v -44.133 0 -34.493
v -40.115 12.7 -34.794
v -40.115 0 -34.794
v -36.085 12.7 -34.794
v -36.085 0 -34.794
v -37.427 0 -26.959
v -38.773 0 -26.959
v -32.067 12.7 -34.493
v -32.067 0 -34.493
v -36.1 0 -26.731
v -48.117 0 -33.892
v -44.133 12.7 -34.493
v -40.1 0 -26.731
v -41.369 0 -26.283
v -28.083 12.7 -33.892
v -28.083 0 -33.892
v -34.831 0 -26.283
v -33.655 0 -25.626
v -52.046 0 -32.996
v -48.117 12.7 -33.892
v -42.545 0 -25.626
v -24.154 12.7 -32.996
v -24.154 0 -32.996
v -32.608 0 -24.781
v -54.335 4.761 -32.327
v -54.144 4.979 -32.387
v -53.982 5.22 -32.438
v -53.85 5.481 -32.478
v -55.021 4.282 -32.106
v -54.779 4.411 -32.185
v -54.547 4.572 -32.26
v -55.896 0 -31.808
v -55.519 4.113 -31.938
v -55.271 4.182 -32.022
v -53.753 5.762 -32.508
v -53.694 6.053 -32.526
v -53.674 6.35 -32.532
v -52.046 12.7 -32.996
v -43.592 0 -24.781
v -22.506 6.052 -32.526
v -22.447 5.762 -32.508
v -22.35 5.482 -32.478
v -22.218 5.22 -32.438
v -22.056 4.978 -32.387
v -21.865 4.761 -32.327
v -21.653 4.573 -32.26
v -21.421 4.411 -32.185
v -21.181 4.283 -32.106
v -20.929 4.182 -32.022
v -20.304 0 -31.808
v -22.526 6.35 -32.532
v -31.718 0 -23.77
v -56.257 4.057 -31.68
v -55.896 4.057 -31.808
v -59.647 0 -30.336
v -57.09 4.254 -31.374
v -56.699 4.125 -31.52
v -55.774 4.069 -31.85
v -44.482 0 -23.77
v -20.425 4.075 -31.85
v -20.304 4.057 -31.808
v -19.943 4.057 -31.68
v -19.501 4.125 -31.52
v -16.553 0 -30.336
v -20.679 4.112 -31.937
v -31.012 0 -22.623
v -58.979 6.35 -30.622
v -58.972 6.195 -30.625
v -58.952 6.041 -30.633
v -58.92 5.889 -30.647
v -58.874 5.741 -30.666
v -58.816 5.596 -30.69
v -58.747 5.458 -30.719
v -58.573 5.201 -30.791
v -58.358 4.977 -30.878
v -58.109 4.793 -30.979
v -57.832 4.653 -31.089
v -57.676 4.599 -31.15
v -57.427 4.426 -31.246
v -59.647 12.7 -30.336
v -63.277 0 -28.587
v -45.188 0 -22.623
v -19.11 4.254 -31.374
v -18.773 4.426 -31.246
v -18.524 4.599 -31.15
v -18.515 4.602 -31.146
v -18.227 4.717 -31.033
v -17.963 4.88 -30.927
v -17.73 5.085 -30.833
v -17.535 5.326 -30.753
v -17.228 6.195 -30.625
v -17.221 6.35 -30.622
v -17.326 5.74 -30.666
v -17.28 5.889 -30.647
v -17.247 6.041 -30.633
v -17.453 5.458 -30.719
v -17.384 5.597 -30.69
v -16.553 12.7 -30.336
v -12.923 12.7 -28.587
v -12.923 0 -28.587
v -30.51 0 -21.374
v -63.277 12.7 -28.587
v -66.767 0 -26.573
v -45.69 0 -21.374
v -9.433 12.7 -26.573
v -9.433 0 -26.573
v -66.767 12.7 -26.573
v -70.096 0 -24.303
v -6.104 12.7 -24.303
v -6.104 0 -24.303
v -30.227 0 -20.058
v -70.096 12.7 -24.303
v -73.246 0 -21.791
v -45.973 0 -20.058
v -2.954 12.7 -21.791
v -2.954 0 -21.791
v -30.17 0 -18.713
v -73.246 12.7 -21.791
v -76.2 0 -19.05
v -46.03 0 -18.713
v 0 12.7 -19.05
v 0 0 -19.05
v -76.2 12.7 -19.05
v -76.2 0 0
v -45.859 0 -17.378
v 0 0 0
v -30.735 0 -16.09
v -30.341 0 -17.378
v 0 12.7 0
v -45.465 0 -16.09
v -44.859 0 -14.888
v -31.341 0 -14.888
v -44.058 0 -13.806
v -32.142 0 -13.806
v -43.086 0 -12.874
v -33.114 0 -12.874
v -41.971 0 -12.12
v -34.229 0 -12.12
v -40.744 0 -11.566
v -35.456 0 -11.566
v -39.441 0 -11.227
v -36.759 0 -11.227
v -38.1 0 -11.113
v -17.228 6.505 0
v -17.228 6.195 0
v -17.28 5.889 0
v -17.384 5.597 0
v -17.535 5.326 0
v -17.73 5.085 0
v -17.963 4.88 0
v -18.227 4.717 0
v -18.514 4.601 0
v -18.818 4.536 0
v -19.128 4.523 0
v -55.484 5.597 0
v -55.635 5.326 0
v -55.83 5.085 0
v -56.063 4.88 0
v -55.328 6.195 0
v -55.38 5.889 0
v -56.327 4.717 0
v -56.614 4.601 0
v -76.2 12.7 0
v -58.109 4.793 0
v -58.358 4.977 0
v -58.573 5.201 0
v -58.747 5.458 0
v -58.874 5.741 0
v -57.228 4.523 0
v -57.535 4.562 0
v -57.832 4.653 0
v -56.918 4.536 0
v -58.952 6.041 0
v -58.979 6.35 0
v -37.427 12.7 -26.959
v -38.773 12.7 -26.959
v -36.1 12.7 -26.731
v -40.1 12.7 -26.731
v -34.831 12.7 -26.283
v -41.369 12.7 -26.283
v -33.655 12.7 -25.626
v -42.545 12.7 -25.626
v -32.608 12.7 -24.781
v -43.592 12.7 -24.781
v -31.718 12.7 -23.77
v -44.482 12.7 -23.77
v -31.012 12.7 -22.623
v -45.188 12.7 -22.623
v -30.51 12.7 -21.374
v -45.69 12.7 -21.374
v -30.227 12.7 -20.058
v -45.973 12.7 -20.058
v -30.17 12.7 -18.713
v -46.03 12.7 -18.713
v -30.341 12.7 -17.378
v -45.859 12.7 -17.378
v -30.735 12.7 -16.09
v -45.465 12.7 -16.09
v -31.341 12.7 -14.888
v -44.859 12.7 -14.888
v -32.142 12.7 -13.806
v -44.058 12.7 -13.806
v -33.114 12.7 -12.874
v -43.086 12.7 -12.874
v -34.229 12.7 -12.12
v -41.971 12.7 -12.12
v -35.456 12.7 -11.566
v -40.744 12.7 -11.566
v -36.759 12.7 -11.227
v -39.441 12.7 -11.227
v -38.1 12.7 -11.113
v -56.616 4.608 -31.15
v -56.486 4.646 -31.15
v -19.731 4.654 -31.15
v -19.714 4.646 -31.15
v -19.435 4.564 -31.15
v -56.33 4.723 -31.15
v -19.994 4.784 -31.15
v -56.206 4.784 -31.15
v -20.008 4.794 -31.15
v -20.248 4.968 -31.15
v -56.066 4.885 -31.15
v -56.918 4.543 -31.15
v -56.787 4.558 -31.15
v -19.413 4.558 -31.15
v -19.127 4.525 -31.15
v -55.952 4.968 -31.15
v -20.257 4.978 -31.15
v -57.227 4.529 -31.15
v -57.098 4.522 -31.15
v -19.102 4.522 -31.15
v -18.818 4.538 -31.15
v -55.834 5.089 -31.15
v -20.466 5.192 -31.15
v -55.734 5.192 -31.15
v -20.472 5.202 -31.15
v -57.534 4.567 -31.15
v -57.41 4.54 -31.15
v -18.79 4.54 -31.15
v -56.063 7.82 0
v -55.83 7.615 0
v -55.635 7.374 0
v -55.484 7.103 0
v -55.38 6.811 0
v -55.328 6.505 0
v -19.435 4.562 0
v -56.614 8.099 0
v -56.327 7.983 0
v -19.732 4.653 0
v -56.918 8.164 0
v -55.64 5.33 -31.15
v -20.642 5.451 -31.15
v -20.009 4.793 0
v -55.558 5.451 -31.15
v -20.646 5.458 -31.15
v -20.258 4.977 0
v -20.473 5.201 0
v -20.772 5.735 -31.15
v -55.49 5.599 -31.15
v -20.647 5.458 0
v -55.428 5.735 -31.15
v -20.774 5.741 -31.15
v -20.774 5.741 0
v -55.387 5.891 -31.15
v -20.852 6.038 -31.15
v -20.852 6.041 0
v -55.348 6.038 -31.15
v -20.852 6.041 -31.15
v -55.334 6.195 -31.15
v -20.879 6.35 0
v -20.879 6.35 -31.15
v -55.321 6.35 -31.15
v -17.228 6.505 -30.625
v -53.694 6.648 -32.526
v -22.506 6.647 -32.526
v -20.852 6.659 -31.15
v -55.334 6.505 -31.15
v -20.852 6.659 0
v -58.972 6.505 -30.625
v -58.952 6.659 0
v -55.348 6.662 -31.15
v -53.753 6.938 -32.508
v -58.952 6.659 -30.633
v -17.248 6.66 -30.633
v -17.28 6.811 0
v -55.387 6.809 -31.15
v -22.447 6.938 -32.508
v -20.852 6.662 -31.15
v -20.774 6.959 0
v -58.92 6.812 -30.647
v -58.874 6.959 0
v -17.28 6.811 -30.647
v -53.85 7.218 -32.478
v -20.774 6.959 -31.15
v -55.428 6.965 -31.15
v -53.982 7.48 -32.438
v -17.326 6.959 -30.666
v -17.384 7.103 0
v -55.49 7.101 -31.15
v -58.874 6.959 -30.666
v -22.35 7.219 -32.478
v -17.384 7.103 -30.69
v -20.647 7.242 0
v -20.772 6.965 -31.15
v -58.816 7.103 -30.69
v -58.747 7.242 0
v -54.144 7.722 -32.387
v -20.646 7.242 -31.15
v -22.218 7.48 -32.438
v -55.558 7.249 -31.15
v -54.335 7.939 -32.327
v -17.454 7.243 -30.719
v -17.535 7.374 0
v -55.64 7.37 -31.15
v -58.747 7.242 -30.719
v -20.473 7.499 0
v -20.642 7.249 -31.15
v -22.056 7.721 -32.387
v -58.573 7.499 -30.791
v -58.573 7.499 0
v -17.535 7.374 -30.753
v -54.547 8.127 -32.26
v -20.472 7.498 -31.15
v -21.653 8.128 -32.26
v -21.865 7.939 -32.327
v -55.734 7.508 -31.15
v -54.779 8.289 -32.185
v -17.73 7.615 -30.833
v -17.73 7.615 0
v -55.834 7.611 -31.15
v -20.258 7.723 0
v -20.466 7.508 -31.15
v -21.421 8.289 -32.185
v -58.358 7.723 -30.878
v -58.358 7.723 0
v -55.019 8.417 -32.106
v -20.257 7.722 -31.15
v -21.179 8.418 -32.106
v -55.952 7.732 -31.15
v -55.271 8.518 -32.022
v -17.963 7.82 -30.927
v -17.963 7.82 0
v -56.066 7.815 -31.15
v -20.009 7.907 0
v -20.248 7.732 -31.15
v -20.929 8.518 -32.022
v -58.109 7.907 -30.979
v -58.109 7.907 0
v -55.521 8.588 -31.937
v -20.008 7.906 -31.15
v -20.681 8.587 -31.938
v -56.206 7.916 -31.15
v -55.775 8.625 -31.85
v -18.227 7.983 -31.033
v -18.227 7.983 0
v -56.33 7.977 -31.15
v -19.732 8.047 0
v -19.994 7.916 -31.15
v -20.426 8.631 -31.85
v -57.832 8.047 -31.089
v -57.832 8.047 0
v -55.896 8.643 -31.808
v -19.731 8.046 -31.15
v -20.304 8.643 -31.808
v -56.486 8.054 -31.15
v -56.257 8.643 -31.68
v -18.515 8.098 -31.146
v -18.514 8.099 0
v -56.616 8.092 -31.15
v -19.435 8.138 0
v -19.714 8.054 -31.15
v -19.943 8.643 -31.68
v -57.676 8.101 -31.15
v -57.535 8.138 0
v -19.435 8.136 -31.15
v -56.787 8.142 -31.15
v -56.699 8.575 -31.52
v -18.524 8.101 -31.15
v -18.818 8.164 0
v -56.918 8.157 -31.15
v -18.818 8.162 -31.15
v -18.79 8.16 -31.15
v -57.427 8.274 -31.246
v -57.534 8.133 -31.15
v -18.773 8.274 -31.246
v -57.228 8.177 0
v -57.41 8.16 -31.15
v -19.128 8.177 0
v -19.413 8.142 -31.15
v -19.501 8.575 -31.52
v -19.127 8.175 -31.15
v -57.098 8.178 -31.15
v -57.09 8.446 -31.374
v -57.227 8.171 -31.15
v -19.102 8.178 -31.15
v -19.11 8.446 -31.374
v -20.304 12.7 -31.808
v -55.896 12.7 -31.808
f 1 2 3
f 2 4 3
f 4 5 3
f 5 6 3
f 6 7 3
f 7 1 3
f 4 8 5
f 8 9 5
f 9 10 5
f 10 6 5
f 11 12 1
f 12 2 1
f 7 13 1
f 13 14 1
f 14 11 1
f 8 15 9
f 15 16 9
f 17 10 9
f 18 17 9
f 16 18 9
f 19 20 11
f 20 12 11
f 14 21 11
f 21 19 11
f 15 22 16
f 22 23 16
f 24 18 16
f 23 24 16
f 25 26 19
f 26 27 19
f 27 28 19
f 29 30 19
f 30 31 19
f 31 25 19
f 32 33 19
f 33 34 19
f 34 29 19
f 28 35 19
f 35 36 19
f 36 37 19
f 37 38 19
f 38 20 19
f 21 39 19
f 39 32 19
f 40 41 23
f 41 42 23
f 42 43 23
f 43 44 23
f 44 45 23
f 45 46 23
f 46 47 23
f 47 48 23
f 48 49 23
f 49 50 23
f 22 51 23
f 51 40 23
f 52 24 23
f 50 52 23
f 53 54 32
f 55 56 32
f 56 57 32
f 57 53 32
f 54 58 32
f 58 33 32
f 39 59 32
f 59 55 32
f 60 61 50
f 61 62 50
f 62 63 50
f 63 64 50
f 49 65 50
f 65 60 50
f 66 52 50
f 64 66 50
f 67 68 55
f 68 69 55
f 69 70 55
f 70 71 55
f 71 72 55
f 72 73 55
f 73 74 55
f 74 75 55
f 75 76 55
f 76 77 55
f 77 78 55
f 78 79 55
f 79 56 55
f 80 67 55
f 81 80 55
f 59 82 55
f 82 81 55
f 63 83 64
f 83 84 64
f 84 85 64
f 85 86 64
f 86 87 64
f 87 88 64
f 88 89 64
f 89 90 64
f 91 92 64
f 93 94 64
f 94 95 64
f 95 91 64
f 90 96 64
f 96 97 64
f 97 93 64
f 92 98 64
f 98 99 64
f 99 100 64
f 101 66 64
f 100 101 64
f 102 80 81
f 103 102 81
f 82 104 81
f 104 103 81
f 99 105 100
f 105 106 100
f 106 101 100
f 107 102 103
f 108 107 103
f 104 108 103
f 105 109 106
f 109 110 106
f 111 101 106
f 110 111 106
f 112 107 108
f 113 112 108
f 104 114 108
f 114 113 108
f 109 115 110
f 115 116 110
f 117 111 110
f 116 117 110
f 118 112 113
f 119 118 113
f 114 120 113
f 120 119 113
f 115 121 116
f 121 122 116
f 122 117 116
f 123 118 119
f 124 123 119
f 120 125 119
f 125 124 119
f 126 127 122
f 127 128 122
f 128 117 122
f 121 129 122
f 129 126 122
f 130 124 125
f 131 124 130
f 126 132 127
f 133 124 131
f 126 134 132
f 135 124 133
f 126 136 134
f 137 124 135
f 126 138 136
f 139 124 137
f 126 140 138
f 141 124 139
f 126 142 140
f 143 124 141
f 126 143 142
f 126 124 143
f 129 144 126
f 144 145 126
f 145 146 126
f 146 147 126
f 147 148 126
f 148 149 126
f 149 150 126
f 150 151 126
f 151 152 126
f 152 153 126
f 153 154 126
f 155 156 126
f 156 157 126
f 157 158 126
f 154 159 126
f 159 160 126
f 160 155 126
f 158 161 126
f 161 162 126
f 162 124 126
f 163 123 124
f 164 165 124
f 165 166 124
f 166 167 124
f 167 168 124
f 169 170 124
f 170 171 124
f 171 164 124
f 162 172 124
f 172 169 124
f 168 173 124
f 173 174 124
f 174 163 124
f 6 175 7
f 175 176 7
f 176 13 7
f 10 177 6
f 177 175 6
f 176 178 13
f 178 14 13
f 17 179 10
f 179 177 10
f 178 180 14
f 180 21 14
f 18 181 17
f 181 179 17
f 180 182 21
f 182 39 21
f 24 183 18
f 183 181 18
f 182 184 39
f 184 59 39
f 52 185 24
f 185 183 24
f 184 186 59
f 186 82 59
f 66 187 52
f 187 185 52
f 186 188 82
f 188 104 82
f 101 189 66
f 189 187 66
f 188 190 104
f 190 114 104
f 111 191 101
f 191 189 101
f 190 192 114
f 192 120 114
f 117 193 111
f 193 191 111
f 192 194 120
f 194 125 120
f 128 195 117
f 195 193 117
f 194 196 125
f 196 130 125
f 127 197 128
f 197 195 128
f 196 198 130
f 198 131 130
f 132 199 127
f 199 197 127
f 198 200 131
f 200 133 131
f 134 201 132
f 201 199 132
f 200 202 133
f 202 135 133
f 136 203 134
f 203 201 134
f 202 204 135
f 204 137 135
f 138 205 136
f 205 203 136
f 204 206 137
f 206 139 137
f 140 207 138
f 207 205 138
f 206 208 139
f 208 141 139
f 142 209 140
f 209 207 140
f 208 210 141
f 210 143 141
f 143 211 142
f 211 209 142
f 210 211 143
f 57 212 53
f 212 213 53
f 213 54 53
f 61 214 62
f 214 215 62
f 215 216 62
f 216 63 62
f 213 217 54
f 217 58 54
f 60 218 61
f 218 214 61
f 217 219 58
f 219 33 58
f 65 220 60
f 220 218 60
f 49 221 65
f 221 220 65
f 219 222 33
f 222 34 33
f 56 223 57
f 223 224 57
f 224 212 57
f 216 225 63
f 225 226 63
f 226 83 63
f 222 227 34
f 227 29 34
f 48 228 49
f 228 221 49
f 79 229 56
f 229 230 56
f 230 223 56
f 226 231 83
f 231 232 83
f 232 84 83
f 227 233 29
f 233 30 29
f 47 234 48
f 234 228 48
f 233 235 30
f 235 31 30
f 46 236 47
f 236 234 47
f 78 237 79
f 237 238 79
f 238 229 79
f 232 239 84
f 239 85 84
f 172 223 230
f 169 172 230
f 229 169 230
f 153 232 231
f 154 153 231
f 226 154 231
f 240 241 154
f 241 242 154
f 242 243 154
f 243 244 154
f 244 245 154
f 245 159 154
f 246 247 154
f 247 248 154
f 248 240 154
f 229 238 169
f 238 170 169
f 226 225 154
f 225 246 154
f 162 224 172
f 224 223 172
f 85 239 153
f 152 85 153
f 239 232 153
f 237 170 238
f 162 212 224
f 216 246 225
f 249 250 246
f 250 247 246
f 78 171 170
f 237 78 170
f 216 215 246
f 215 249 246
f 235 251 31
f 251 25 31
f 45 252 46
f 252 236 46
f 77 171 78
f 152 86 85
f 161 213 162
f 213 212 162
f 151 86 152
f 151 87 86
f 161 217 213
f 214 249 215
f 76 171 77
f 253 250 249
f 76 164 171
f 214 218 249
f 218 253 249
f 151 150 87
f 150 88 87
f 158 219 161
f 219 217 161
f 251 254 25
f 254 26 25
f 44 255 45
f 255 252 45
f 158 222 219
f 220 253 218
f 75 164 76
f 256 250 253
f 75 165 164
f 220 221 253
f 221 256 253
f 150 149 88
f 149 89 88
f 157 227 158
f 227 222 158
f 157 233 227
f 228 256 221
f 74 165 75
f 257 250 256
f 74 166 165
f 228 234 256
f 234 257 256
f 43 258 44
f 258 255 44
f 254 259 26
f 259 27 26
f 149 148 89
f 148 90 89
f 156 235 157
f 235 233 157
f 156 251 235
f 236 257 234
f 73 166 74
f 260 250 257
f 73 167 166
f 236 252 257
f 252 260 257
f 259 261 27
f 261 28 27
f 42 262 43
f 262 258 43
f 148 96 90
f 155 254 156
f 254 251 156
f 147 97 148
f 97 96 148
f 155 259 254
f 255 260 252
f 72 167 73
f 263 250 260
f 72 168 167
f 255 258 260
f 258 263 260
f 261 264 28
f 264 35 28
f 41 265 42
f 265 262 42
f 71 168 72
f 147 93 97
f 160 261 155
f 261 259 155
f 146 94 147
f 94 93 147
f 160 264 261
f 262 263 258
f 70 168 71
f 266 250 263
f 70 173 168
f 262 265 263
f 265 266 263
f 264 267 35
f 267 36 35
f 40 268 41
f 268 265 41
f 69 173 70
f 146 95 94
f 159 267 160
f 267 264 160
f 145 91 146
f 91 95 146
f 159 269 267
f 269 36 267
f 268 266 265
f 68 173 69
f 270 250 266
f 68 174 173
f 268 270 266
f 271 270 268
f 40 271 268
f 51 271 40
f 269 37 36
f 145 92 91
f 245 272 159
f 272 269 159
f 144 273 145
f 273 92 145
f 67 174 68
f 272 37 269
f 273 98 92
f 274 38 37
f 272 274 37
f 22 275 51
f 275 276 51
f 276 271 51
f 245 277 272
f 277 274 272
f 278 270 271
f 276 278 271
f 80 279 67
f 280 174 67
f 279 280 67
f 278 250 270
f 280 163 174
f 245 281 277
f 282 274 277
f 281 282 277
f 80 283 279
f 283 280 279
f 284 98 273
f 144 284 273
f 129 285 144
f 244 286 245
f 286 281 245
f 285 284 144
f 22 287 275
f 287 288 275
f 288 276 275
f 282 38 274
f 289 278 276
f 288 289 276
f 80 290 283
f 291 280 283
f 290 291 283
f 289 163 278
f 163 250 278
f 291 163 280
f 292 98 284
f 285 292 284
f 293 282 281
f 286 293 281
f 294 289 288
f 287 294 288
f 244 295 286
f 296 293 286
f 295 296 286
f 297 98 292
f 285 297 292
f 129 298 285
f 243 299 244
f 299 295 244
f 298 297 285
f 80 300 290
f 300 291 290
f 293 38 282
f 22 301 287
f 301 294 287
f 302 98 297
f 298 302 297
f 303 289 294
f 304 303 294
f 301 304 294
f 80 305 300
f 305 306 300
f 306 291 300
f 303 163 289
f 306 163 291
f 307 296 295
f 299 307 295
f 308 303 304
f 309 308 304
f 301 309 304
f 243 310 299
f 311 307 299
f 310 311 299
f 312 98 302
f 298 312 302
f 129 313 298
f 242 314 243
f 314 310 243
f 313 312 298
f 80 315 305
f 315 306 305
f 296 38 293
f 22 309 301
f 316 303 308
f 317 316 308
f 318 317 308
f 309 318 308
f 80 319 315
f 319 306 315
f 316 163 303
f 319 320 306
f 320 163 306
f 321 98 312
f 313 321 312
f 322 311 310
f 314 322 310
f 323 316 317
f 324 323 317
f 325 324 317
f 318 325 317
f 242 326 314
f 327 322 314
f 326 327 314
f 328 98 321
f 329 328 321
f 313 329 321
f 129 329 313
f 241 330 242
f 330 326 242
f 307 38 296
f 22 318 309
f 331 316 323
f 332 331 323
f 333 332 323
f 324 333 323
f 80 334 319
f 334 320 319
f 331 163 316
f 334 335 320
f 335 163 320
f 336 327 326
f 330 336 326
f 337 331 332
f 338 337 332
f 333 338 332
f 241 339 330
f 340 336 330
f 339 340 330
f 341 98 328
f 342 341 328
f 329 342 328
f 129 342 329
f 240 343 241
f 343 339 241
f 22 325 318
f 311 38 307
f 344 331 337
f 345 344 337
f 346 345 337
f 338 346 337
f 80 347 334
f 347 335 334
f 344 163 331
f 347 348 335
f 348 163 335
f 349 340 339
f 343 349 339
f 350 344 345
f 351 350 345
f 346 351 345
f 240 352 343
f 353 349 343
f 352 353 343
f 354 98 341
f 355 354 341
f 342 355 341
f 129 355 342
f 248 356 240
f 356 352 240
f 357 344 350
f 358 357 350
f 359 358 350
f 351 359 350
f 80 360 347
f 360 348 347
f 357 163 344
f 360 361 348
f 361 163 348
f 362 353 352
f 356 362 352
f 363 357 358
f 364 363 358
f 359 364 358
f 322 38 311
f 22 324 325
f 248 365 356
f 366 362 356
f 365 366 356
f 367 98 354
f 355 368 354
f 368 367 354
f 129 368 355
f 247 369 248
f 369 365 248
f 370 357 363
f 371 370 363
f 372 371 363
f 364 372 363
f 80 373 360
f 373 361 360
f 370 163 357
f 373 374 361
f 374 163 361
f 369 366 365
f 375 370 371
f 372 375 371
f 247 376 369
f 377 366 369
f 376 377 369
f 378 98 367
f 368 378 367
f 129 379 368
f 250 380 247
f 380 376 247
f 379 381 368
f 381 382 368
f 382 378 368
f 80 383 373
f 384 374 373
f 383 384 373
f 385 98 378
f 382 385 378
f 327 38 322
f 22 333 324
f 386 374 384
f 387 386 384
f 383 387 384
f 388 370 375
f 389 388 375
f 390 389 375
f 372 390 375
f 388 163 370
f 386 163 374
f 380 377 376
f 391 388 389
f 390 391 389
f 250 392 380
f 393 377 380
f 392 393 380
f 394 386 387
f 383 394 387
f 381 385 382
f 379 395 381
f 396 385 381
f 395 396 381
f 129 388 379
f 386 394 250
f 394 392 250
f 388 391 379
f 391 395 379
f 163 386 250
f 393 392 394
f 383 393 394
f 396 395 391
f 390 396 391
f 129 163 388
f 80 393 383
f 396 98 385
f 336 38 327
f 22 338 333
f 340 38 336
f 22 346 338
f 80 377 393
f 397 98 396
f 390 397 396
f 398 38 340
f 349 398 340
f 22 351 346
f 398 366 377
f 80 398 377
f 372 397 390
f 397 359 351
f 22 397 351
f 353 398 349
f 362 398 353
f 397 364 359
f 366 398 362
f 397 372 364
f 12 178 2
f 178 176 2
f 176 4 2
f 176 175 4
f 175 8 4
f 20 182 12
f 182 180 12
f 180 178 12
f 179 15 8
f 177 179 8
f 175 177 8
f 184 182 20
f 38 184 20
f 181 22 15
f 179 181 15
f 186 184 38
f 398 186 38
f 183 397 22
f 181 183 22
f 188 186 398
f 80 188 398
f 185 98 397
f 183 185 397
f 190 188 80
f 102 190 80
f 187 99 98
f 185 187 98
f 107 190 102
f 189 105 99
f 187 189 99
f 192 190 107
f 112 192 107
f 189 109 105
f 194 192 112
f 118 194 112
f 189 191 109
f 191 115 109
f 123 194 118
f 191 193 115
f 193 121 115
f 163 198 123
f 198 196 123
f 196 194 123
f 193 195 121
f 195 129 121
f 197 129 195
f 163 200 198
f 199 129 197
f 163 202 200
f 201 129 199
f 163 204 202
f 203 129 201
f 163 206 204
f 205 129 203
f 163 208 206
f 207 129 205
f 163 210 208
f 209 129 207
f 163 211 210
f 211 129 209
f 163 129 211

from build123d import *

# Parameters (mm, degrees)
BOSS_EXTRUDE1_DEPTH                               = 12.7
F_5_8_0_6250_DOWEL_HOLE2_D                        = 15.875
CSK_FOR_6_FLAT_HEAD_MACHINE_SCREW_100_D           = 3.6576
CSK_FOR_6_FLAT_HEAD_MACHINE_SCREW_100_CSINK_D     = 7.0866
CSK_FOR_6_FLAT_HEAD_MACHINE_SCREW_100_CSINK_ANGLE = 100


with BuildPart() as part:
    # Sketch2 → Boss-Extrude1 (new body)
    with BuildSketch(Plane(origin=(0, 0, 0), x_dir=(1, 0, 0), z_dir=(0, 1, 0))):
        with BuildLine():
            Line((0, 0), (-76.2, 0))
            Line((-76.2, 0), (-76.2, 19.05))
            ThreePointArc((-76.2, 19.05), (-38.1, 34.831536726), (0, 19.05))
            Line((0, 19.05), (0, 0))
        make_face()
    extrude(amount=BOSS_EXTRUDE1_DEPTH)

    # 5/8 (0.6250) Dowel Hole2 (through all)
    with Locations(Plane(origin=(0, 12.7, 0), x_dir=(1, 0, 0), z_dir=(0, 1, 0))):
        with Locations((-38.1, 19.05)):
            Hole(F_5_8_0_6250_DOWEL_HOLE2_D / 2)

    # CSK for #6 Flat Head Machine Screw (100)3 (through all)
    with Locations(Plane(origin=(0, 0, -32.5882), x_dir=(1, 0, 0), z_dir=(0, 0, -1))):
        with Locations((-19.05, -6.35), (-57.15, -6.35)):
            CounterSinkHole(CSK_FOR_6_FLAT_HEAD_MACHINE_SCREW_100_D / 2, CSK_FOR_6_FLAT_HEAD_MACHINE_SCREW_100_CSINK_D / 2, counter_sink_angle=CSK_FOR_6_FLAT_HEAD_MACHINE_SCREW_100_CSINK_ANGLE)


solid = part.part
